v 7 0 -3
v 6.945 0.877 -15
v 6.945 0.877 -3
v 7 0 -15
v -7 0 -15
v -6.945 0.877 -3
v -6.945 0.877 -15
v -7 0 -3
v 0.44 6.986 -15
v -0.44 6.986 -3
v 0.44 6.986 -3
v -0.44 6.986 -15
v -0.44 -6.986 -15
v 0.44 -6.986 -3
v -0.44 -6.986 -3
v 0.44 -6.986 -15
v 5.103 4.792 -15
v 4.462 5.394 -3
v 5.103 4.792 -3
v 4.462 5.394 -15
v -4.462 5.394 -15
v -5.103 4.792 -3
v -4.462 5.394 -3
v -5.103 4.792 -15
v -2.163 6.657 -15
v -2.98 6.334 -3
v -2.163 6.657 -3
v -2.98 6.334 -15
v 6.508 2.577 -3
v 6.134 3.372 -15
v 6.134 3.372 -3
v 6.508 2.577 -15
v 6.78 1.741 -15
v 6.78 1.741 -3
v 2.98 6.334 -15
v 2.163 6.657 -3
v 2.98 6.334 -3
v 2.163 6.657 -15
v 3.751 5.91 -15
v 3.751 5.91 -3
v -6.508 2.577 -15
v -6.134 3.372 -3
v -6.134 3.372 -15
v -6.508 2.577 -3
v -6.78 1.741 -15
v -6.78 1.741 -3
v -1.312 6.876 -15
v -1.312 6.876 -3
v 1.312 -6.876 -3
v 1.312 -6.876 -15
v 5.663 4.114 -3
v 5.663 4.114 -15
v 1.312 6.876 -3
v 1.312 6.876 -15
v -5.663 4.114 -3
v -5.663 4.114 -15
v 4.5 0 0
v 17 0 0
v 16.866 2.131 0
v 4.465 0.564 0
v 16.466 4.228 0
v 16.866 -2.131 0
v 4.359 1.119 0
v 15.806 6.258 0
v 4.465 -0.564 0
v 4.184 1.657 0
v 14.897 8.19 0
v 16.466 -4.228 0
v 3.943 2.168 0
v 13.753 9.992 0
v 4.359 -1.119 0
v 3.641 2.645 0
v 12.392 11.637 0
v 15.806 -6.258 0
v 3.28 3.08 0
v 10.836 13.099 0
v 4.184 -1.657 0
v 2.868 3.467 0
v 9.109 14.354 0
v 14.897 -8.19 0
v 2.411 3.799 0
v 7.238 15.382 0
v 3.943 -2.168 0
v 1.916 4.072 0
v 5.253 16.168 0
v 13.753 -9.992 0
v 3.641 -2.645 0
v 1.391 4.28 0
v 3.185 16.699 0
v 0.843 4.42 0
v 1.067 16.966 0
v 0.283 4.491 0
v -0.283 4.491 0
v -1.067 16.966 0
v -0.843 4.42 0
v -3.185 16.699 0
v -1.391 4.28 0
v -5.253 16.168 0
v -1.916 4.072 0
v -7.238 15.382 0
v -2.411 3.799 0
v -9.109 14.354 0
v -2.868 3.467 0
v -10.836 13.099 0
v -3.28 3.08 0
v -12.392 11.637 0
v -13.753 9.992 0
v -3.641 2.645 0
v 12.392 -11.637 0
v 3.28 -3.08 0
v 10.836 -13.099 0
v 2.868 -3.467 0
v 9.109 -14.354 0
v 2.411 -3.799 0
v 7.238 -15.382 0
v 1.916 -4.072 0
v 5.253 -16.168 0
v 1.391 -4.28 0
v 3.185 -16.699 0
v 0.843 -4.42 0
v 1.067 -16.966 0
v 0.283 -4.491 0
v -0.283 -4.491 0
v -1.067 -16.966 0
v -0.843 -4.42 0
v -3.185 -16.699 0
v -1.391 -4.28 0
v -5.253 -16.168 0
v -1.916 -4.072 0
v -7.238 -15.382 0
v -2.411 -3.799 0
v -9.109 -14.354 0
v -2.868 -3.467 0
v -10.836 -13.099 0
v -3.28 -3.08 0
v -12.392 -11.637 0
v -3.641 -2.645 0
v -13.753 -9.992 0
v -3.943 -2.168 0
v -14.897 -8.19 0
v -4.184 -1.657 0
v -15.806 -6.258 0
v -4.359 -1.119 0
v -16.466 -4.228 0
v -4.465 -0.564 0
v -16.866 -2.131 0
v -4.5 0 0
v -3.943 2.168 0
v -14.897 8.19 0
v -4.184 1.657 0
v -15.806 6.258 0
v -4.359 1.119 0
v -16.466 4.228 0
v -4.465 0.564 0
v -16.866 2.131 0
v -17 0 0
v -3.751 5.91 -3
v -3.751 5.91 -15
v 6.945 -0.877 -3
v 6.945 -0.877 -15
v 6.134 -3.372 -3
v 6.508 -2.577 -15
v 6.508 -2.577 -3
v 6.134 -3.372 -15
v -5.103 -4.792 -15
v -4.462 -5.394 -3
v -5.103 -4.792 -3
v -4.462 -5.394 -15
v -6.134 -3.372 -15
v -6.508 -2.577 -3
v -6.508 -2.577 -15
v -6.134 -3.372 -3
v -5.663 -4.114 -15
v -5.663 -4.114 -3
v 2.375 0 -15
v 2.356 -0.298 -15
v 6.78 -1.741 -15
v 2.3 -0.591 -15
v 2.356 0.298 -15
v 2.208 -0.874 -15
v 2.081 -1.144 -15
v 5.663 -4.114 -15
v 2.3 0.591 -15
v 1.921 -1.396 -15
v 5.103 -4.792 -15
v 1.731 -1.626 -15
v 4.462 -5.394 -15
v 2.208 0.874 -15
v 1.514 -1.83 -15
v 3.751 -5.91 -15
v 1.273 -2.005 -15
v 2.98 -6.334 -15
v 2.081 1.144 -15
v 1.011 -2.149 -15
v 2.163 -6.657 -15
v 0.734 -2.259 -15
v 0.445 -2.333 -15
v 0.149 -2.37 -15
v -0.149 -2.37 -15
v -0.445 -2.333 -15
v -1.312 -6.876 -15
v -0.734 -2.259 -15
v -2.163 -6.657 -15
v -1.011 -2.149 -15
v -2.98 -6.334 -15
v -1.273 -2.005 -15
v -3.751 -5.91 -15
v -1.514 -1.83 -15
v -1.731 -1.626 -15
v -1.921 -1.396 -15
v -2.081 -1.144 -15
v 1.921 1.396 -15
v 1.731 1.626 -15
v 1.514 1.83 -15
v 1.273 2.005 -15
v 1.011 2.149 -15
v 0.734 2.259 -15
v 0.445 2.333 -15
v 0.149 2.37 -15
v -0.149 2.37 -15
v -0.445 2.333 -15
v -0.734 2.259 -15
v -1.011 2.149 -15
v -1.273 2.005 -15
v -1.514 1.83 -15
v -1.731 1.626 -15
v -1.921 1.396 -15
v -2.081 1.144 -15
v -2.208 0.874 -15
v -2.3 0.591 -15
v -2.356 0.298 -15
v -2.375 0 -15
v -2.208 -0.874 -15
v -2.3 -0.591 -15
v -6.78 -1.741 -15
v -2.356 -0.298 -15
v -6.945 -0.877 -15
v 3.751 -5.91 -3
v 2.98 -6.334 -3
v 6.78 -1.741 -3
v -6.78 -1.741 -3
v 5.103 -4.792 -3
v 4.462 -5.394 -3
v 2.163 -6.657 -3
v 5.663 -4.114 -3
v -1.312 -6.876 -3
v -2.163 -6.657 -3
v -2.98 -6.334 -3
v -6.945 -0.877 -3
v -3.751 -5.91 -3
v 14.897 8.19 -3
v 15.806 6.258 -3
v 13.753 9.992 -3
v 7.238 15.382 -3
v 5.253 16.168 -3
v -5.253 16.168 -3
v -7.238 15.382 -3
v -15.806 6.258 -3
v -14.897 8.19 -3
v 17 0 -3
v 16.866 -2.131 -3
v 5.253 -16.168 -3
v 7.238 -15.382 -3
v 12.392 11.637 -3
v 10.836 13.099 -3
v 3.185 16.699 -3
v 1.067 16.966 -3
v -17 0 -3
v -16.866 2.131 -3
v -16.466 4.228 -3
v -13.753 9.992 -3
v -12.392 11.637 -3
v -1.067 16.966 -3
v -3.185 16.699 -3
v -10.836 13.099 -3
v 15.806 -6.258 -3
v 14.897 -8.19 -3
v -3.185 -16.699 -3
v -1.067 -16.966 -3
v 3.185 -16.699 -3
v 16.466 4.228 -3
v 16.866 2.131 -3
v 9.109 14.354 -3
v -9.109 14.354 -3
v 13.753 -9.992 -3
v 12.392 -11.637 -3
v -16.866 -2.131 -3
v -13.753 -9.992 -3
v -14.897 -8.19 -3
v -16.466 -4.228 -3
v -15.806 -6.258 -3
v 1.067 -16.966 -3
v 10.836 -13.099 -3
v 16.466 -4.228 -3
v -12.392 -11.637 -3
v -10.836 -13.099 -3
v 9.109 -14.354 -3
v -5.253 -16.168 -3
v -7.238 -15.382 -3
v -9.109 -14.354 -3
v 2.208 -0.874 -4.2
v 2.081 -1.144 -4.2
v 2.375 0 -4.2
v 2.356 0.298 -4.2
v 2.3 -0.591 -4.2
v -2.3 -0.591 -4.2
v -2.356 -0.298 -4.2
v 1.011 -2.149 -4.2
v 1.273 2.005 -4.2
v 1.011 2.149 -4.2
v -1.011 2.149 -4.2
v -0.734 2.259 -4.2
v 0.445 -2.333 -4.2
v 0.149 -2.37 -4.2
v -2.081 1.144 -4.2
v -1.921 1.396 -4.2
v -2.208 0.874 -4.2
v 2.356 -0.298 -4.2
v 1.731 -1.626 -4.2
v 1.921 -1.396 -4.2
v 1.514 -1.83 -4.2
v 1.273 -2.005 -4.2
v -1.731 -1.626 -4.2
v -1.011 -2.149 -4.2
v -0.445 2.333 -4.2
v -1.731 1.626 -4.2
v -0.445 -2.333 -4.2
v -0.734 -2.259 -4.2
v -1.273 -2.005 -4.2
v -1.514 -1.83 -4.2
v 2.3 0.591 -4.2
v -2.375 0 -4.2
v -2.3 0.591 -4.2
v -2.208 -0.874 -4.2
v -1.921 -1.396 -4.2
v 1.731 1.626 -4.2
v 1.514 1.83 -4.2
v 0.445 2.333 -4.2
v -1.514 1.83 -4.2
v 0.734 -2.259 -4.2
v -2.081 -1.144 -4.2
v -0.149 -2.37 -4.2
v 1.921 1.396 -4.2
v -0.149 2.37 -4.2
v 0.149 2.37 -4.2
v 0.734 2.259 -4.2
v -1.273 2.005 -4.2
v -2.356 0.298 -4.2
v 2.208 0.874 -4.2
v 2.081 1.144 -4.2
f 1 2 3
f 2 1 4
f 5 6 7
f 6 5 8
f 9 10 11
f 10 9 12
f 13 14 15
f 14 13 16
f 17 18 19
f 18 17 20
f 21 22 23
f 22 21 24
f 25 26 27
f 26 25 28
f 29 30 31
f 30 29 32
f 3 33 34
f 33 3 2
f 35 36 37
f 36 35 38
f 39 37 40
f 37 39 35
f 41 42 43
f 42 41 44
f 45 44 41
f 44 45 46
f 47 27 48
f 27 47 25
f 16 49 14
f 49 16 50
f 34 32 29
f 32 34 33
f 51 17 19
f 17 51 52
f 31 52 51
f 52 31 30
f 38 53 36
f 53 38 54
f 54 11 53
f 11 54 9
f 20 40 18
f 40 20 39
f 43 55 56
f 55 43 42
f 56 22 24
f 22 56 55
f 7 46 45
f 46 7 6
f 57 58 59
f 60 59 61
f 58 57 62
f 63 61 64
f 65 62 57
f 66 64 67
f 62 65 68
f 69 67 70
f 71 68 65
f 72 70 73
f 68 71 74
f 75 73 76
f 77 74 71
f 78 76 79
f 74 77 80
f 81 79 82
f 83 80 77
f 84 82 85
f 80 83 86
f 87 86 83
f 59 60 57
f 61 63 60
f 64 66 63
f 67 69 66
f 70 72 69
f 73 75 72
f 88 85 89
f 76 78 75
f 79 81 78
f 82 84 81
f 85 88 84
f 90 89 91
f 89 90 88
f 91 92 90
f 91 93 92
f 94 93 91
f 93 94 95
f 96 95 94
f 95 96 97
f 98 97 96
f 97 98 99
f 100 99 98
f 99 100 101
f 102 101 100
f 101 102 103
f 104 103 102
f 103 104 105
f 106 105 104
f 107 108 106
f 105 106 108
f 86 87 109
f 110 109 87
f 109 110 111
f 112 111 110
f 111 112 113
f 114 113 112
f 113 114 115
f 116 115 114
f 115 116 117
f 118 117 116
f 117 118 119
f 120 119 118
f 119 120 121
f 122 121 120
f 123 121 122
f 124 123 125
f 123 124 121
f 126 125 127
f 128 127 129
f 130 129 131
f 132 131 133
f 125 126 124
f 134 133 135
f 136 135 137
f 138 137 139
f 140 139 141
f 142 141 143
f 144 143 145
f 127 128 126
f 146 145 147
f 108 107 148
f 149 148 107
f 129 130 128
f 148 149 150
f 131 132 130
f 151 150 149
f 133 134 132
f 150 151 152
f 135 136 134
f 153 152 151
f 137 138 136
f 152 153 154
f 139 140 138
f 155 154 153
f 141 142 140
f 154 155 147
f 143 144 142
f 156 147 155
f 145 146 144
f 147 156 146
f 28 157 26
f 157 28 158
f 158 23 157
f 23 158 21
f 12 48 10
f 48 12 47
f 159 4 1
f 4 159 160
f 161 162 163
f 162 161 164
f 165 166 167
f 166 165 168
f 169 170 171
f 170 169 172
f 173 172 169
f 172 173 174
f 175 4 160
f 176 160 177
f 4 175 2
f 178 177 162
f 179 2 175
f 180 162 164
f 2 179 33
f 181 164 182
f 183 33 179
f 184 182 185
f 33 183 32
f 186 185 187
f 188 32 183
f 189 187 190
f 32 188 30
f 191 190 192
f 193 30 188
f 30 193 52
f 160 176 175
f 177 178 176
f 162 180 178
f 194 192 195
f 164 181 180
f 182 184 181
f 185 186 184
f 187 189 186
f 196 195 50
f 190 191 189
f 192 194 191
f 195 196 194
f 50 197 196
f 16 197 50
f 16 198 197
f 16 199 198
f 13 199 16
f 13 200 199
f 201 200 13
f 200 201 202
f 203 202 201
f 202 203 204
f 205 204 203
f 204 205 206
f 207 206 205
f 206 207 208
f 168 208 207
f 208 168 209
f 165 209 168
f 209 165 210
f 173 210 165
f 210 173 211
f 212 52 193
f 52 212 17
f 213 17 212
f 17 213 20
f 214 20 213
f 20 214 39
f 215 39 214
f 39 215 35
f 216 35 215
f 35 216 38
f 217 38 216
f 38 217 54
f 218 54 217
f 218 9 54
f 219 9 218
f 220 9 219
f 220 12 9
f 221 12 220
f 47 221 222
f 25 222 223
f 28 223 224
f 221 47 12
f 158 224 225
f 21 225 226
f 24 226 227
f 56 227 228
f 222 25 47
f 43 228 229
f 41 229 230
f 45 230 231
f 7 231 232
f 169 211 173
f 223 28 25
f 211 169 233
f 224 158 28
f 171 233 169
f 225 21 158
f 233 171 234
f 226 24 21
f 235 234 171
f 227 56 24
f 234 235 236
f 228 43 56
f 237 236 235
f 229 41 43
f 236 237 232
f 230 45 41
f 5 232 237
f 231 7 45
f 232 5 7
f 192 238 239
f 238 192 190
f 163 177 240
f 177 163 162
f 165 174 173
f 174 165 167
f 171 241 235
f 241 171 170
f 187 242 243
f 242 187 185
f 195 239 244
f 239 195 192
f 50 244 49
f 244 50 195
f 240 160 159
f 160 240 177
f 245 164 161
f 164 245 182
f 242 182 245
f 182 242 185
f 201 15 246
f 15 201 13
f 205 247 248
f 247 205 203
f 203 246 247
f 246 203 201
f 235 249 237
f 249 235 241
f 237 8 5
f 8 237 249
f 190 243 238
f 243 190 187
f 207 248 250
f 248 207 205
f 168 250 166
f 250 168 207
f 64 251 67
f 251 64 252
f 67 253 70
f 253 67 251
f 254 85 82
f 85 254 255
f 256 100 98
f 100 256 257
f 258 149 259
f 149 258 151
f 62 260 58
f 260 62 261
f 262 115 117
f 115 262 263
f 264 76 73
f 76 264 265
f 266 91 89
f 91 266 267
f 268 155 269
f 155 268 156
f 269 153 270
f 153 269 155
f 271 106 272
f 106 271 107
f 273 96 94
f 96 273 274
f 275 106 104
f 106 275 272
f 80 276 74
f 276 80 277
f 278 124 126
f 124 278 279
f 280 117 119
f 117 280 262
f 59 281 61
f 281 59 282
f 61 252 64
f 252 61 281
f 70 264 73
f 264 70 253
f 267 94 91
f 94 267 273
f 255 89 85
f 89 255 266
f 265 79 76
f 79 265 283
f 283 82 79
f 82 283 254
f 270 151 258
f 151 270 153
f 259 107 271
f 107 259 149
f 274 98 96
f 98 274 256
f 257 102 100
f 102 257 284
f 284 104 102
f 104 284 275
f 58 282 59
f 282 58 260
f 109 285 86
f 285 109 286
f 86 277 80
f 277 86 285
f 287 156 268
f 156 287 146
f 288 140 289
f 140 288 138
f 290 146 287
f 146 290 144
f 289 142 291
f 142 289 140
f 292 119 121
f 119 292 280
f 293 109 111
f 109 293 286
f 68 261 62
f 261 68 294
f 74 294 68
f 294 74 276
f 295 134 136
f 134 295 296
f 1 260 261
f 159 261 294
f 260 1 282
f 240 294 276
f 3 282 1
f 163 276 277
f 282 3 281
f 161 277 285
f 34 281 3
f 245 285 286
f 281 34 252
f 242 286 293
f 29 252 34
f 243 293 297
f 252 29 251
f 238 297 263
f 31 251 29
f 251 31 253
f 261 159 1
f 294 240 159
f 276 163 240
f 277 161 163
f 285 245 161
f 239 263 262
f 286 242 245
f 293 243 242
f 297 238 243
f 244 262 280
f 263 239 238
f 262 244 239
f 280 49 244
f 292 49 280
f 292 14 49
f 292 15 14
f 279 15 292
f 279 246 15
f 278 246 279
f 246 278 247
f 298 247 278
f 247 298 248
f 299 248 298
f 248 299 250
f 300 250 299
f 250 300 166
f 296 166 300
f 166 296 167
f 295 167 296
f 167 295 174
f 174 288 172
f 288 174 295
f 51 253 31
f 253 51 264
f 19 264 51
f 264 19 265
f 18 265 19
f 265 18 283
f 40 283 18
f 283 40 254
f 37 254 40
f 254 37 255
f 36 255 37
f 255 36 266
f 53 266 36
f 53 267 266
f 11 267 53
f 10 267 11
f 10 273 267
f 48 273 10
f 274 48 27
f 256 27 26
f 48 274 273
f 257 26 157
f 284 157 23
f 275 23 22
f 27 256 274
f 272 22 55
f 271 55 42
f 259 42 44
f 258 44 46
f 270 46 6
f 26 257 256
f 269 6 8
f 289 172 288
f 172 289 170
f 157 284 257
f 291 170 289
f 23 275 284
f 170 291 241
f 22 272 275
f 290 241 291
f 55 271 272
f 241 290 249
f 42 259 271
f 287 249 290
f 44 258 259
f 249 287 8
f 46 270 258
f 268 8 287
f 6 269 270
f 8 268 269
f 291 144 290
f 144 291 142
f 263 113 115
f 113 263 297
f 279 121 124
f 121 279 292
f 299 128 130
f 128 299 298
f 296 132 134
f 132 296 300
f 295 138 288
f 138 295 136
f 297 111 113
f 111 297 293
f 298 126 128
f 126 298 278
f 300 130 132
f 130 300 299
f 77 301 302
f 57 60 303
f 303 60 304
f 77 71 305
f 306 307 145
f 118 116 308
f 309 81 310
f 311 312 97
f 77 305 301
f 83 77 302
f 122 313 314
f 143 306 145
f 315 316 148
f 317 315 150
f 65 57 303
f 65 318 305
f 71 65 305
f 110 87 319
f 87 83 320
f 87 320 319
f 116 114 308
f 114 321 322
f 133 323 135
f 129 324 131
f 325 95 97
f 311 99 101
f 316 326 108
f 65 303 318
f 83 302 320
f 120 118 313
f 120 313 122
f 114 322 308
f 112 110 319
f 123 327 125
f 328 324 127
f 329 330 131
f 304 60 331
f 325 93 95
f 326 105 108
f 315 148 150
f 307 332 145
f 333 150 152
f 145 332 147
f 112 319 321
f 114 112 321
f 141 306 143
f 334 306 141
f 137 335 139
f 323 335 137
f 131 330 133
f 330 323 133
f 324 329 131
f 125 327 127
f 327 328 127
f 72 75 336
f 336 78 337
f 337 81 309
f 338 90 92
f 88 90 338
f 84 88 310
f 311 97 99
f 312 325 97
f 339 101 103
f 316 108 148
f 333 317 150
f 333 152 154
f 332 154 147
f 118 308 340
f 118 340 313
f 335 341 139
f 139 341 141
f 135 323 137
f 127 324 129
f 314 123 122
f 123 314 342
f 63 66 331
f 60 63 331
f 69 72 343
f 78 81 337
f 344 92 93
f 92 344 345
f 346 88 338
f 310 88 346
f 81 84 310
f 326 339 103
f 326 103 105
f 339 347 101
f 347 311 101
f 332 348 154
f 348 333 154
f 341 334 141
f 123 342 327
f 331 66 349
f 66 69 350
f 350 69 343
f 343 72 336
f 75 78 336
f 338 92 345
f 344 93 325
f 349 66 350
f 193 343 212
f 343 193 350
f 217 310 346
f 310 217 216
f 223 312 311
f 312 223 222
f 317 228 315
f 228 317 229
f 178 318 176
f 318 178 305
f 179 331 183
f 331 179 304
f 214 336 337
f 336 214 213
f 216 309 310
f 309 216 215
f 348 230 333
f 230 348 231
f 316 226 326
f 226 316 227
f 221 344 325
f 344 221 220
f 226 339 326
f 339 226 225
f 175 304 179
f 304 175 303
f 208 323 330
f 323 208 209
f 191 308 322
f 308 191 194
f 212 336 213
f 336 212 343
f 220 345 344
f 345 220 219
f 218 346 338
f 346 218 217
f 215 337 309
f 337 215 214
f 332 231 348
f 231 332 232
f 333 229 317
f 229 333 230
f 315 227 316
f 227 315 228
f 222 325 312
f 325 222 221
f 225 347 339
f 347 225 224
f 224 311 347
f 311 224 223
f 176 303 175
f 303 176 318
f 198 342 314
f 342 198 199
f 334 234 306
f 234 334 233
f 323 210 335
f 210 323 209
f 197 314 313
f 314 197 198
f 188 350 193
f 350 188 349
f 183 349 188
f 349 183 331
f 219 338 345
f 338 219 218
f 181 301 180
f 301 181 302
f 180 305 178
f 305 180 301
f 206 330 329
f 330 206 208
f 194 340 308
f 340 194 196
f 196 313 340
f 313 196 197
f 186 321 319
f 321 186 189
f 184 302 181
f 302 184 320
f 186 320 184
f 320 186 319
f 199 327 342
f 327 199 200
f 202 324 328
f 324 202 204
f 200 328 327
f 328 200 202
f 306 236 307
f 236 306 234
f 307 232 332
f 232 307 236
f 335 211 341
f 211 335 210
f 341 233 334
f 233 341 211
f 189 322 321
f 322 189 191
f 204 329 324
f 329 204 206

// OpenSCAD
$fn = 50;


difference() {
	union() {
		translate(v = [0, 0, -15.0000000000]) {
			cylinder(h = 15, r = 7.0000000000);
		}
		translate(v = [0, 0, -3.0000000000]) {
			cylinder(h = 3, r = 17.0000000000);
		}
	}
	union() {
		translate(v = [0, 0, 0]) {
			rotate(a = [0, 0, 0]) {
				difference() {
					union() {
						#translate(v = [0, 0, -15.0000000000]) {
							cylinder(h = 15, r = 2.2500000000);
						}
						#translate(v = [0, 0, -4.2000000000]) {
							cylinder(h = 4.2000000000, r = 7.0000000000, r1 = 2.3750000000, r2 = 4.5000000000);
						}
						#translate(v = [0, 0, -15.0000000000]) {
							cylinder(h = 15, r = 2.3750000000);
						}
						#translate(v = [0, 0, -15.0000000000]) {
							cylinder(h = 15, r = 2.2500000000);
						}
					}
					union();
				}
			}
		}
	}
}
